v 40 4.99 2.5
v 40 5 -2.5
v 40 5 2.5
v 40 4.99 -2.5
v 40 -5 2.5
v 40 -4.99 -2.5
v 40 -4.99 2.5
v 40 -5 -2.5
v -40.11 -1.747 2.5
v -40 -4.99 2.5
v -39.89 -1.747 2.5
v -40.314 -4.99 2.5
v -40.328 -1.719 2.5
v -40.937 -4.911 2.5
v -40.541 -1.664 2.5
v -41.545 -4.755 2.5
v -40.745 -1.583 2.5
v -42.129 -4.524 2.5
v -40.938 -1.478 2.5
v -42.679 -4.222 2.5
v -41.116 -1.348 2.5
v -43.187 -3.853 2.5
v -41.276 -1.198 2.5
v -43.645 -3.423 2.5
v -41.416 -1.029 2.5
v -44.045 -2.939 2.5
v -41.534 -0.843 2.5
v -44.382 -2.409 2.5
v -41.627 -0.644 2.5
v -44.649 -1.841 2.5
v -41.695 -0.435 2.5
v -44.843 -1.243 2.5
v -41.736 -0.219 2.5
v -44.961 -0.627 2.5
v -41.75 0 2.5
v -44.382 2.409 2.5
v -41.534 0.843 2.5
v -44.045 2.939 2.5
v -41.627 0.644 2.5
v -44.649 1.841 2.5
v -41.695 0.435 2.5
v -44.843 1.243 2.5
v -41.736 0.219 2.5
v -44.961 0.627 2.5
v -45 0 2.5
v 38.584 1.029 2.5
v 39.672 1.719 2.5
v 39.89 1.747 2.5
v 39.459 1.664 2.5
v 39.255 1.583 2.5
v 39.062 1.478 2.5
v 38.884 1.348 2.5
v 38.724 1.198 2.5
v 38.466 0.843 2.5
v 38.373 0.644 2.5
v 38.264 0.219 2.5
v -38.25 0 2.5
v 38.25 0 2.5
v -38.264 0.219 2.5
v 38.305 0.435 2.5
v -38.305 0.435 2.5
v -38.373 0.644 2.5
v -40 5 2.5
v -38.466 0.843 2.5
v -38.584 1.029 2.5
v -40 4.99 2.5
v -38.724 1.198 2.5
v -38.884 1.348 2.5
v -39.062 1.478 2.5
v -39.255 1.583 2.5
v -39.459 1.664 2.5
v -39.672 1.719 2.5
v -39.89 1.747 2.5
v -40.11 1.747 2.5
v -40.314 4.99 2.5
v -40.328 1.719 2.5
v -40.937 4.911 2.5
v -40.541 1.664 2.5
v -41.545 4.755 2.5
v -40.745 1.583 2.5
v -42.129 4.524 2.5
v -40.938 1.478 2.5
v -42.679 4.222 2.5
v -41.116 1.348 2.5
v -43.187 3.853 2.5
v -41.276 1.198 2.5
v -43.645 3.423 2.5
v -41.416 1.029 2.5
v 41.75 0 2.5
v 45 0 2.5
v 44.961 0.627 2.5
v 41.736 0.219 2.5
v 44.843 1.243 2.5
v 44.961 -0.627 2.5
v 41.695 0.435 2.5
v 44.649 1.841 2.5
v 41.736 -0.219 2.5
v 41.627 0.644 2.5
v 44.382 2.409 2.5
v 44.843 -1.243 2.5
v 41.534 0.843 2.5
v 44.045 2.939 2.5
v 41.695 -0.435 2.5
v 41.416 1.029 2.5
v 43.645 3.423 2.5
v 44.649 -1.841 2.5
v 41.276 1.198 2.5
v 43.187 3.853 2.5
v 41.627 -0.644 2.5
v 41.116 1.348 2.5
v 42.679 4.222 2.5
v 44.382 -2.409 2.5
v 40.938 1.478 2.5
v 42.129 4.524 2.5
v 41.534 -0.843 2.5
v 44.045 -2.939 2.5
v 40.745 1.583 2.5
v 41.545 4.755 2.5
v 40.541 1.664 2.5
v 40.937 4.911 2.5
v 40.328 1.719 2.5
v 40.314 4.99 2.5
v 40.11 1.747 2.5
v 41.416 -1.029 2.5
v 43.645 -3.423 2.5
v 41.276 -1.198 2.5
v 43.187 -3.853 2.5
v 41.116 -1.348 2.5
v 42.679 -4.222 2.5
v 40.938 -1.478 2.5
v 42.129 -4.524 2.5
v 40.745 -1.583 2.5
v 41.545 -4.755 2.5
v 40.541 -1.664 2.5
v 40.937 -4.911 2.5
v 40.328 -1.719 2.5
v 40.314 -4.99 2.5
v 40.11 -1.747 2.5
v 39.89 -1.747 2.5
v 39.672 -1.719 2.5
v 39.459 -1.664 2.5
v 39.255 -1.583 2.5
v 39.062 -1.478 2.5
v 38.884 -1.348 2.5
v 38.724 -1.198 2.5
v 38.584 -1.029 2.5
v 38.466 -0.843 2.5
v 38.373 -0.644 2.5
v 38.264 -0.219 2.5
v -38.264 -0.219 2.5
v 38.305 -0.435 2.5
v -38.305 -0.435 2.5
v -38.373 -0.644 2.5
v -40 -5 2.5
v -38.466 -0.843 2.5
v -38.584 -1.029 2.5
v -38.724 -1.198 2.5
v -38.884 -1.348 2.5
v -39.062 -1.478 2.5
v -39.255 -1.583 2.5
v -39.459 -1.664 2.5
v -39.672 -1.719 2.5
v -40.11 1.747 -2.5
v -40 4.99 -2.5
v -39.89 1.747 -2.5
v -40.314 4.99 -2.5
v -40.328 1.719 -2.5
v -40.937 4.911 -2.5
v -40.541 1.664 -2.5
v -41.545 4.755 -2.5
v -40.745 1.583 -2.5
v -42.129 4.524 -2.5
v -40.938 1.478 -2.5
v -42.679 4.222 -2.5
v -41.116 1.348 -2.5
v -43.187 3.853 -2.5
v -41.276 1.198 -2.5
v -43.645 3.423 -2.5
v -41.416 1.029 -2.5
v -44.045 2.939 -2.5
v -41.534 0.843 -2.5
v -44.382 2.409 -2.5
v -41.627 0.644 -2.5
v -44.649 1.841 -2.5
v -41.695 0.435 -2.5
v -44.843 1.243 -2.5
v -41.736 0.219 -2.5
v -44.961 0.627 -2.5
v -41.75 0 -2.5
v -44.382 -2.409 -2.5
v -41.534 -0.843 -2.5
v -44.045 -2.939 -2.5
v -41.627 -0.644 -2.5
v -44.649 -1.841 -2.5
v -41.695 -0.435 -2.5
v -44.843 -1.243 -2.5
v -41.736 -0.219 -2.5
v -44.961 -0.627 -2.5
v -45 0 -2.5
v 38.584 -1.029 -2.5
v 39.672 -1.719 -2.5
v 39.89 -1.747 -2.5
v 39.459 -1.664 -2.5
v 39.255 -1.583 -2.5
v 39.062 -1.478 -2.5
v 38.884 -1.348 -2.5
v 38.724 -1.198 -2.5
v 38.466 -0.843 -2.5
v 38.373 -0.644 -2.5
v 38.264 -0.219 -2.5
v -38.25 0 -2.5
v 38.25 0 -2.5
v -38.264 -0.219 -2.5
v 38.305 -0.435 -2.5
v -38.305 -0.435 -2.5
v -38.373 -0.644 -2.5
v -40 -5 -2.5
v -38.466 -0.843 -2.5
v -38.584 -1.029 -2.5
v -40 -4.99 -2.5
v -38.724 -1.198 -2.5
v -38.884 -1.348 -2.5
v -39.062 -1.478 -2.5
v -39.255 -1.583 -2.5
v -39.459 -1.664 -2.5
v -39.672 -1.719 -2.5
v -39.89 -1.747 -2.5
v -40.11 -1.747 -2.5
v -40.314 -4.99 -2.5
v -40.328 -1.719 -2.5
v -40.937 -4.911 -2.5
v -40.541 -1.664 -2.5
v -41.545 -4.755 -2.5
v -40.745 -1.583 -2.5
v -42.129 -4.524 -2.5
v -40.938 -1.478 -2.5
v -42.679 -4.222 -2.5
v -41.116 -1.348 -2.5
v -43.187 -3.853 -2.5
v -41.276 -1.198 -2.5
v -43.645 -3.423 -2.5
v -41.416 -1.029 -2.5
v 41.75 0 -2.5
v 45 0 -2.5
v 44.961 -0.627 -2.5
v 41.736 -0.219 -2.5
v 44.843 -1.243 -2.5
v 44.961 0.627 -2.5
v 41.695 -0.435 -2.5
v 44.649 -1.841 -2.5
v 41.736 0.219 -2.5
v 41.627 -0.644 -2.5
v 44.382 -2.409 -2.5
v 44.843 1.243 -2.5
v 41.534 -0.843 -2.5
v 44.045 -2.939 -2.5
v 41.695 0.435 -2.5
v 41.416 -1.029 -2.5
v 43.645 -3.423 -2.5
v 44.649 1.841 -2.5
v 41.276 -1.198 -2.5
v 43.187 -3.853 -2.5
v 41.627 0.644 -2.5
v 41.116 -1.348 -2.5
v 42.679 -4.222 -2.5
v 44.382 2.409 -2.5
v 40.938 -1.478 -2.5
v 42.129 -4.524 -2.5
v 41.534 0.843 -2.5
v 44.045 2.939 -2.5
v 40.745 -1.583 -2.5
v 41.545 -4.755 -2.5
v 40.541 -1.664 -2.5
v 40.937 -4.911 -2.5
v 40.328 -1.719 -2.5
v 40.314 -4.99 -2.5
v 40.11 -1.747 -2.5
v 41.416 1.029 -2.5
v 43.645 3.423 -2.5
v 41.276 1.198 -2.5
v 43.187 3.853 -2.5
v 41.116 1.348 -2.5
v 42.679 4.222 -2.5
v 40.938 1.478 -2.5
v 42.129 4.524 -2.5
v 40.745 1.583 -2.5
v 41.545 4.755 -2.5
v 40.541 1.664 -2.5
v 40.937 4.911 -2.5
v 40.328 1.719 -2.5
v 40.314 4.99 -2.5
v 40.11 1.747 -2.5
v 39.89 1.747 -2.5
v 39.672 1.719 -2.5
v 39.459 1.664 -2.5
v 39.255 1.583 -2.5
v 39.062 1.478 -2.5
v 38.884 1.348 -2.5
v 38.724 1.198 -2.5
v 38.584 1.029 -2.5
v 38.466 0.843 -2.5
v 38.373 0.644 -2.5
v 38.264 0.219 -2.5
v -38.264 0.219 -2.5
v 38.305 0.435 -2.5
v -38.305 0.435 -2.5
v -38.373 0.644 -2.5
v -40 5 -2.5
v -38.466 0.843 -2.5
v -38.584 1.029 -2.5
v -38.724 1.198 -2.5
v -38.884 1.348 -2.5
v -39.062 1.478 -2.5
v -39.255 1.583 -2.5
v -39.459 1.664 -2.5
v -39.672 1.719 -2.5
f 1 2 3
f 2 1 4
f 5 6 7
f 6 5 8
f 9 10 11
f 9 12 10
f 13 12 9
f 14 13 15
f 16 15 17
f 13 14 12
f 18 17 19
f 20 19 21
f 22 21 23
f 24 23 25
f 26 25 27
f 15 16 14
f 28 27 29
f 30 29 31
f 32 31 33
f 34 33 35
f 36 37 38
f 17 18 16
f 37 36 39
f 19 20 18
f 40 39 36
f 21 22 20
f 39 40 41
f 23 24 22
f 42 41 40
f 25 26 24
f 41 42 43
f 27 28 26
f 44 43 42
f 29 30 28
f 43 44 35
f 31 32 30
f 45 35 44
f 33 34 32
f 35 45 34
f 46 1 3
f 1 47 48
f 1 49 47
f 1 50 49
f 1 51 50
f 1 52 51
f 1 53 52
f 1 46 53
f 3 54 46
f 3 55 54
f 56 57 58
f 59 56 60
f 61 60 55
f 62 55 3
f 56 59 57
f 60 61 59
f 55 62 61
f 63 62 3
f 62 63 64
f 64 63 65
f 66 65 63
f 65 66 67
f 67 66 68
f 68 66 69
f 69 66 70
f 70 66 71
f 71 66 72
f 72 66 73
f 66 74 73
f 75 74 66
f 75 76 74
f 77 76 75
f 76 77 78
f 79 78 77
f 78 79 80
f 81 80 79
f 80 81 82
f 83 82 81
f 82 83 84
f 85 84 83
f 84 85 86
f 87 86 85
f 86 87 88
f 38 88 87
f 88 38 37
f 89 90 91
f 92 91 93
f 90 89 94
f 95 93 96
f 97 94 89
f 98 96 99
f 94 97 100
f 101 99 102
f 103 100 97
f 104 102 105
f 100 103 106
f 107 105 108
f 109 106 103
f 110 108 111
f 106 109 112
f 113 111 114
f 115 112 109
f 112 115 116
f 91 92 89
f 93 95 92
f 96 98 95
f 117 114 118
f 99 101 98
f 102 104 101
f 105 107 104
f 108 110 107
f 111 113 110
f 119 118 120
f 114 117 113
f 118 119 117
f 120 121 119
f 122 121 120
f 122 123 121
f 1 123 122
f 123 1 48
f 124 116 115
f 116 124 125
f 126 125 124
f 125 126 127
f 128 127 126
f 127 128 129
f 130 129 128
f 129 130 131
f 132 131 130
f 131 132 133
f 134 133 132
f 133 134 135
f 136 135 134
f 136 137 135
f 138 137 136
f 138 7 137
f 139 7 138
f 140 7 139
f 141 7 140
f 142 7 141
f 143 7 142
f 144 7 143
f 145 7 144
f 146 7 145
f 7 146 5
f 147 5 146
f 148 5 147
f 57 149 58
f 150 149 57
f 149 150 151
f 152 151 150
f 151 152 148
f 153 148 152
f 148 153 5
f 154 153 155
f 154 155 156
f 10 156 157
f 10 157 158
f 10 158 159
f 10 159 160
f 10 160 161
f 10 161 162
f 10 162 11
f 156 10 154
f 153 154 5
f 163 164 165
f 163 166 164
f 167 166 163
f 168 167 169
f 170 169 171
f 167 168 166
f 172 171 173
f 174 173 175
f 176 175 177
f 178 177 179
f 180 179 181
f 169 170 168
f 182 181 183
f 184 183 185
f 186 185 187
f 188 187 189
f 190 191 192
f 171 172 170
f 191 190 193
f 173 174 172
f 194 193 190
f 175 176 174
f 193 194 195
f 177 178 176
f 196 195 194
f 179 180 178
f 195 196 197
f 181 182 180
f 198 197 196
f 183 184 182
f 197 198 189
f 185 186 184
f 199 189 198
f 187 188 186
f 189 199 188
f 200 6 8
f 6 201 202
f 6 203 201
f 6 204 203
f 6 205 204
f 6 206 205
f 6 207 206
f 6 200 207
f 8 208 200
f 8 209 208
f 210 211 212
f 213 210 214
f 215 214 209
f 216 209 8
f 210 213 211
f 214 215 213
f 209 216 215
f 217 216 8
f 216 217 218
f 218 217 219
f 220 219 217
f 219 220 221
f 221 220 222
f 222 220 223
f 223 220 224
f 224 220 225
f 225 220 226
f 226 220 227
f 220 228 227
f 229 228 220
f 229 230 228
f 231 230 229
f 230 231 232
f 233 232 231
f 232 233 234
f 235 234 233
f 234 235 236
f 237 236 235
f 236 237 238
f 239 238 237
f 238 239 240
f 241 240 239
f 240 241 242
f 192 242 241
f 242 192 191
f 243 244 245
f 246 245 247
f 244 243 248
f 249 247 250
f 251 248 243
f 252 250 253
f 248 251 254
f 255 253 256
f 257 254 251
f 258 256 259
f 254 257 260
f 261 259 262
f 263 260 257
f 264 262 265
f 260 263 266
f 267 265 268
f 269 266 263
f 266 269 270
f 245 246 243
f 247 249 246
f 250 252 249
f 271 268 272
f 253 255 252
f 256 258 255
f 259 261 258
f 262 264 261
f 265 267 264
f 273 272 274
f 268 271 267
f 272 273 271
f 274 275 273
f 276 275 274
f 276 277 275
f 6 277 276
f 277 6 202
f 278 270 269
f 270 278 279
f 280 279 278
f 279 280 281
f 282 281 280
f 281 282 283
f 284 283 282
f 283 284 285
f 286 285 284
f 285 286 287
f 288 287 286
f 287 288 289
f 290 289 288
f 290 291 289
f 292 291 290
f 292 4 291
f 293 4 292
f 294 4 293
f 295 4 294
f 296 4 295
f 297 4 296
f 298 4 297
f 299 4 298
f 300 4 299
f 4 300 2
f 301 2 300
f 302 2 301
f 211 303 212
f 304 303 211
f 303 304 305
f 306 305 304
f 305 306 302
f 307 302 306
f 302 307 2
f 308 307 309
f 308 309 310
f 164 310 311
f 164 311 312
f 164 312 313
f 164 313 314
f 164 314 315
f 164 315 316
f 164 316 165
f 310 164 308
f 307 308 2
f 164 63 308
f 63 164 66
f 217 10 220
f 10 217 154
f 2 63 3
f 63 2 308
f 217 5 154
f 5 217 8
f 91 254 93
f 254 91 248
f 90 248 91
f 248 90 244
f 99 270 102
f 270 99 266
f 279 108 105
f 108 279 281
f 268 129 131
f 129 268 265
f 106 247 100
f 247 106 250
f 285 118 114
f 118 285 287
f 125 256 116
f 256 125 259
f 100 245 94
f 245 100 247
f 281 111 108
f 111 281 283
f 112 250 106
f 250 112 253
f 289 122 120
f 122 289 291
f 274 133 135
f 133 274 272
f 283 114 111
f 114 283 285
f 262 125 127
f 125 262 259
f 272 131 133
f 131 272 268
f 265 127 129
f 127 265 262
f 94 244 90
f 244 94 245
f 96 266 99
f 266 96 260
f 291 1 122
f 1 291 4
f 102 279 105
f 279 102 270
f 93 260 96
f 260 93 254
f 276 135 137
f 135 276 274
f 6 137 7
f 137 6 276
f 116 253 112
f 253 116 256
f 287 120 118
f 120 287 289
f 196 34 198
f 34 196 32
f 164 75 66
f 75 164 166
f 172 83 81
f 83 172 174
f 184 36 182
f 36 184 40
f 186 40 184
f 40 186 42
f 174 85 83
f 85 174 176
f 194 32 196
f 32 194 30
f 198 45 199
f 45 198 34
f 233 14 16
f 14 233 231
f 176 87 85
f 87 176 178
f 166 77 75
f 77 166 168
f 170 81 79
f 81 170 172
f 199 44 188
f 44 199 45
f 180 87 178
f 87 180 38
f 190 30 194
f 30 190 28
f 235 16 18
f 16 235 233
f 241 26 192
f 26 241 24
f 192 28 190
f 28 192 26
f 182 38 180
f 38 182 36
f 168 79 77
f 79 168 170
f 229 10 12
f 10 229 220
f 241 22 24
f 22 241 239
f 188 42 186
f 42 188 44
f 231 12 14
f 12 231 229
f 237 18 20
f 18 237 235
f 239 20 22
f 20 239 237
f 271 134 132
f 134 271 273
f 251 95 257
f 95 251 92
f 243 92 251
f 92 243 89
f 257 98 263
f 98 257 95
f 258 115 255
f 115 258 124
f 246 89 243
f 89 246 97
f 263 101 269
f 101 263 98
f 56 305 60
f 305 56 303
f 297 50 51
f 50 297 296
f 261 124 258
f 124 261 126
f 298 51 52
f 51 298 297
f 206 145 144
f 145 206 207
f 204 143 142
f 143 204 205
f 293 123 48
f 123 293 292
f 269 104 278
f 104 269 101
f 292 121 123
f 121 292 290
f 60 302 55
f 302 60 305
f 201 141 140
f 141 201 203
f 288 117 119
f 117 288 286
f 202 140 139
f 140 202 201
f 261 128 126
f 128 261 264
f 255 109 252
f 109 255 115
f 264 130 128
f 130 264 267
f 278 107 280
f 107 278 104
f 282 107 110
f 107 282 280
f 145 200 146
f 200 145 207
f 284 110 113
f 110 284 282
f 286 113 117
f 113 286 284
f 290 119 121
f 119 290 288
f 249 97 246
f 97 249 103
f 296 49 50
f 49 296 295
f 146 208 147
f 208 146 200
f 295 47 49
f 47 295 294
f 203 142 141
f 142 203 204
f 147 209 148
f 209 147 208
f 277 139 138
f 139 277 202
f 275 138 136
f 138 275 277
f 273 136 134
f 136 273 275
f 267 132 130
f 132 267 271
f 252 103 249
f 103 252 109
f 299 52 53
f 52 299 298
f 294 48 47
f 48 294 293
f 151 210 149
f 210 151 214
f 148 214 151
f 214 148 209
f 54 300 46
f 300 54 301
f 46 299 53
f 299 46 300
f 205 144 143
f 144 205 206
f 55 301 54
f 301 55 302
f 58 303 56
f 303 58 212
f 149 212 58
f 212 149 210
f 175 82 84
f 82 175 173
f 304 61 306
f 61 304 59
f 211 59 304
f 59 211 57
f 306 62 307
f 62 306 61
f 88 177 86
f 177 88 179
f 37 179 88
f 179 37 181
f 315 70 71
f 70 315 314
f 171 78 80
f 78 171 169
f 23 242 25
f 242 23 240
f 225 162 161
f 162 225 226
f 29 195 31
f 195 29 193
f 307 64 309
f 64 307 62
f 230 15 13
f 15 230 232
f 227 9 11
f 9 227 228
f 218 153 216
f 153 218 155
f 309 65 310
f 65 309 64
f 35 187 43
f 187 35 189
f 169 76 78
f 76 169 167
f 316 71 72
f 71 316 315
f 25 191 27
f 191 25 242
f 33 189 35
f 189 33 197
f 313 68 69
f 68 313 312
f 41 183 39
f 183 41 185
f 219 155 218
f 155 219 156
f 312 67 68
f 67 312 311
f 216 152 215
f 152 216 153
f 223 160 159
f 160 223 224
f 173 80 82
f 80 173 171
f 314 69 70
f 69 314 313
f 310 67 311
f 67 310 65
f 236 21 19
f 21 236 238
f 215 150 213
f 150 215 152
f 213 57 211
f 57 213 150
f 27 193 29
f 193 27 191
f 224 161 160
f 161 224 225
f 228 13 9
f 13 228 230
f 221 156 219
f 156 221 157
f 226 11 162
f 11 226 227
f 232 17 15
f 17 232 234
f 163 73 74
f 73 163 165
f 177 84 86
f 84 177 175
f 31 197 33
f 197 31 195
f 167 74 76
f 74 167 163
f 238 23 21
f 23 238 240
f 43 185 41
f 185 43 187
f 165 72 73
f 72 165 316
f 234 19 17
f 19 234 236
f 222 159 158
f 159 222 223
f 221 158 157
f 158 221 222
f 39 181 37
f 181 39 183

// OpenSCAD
$fn=50;

difference()
{
    union() {
        cube([80,10,5],center=true);
        translate([ 40, 0,0]) cylinder(h=5,d=10,center=true);
        translate([-40, 0,0]) cylinder(h=5,d=10,center=true);
    }

    // Mounting Holes
    translate([ 40, 0,0]) cylinder(h=20,d=3.5,center=true);
    translate([-40, 0,0]) cylinder(h=20,d=3.5,center=true);
}
